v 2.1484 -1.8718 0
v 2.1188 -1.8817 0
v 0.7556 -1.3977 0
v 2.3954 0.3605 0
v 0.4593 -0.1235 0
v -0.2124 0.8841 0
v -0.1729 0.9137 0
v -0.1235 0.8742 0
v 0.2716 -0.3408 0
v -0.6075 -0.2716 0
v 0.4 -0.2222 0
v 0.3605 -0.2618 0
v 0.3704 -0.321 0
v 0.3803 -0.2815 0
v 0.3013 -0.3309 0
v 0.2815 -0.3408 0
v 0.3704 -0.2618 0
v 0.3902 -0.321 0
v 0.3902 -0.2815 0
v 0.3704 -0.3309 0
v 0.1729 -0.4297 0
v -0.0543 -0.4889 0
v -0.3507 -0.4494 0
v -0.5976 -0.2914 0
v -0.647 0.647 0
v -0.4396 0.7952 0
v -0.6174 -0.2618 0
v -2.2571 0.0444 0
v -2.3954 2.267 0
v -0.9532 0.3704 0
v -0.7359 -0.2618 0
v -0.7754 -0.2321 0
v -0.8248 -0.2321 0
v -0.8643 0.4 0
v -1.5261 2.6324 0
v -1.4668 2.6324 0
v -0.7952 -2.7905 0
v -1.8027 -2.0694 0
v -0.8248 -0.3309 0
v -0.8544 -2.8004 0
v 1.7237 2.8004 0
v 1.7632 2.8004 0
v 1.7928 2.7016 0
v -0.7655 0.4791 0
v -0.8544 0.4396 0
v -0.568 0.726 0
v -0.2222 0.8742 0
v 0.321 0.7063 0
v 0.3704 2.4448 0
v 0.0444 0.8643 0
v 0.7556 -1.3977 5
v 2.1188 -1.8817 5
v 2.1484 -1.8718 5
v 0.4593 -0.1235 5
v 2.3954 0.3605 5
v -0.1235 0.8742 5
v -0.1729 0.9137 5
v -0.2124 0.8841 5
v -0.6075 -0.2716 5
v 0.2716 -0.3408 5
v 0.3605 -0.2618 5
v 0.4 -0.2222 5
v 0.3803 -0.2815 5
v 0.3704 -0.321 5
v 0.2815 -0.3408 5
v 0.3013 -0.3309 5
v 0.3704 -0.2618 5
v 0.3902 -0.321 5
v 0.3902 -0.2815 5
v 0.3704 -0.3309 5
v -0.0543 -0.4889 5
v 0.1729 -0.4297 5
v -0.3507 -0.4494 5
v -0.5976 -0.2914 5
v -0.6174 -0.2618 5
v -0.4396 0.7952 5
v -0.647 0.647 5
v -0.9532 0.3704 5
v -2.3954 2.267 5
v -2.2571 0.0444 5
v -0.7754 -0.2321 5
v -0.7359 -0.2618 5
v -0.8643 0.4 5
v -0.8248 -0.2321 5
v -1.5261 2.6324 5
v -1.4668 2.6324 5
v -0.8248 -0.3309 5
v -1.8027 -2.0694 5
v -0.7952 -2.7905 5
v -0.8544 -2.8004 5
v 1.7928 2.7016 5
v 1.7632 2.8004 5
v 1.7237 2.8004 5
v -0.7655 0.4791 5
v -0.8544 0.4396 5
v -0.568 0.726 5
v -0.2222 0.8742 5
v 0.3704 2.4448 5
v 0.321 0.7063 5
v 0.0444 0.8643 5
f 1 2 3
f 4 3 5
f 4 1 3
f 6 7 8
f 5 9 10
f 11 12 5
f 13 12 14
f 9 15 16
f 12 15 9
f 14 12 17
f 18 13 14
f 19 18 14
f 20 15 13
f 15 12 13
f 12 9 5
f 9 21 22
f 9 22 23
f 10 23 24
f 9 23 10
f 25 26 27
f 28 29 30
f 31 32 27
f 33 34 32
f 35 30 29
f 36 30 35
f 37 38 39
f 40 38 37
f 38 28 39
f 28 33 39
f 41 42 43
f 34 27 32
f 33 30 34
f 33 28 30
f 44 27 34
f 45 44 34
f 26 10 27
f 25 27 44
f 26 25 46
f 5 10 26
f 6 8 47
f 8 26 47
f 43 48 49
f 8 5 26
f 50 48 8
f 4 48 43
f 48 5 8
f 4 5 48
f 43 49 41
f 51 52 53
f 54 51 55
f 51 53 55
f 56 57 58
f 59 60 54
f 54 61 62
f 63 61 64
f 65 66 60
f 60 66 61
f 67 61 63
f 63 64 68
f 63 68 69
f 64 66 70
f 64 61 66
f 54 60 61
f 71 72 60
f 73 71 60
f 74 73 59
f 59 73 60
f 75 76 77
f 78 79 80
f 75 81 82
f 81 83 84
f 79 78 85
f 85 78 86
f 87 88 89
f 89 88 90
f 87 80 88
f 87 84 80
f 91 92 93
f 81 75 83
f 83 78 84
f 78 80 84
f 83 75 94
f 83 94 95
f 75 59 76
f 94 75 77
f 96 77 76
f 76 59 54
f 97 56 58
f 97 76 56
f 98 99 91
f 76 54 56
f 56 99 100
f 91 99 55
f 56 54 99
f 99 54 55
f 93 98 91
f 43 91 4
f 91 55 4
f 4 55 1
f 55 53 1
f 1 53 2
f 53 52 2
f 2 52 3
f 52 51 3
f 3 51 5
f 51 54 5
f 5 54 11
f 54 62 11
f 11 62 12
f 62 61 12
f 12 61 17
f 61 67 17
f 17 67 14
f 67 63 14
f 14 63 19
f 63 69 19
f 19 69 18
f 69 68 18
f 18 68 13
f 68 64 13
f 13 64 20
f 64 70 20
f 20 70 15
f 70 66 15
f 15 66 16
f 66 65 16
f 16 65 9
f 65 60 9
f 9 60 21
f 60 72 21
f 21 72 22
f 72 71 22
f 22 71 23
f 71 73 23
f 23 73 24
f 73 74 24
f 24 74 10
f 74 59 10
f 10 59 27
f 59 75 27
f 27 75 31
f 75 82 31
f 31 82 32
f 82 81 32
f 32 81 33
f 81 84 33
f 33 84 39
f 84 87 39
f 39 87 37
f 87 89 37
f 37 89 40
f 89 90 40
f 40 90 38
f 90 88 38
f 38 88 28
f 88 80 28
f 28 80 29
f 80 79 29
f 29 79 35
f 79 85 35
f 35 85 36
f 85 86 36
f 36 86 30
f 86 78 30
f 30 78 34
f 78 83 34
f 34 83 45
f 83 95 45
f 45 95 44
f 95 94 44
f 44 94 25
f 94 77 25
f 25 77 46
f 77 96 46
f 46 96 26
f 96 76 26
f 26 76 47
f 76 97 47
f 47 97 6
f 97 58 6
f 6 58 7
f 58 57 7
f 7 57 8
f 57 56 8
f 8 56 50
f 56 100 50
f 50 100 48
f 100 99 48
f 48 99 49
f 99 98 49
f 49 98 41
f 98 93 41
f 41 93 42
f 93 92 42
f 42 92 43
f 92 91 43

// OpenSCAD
// Module names are of the form poly_<inkscape-path-id>().  As a result,
// you can associate a polygon in this OpenSCAD program with the corresponding
// SVG element in the Inkscape document by looking for the XML element with
// the attribute id="inkscape-path-id".

// fudge value is used to ensure that subtracted solids are a tad taller
// in the z dimension than the polygon being subtracted from.  This helps
// keep the resulting .stl file manifold.
fudge = 0.1;

module poly_path4215(h)
{
  scale([25.4/90, -25.4/90, 1]) union()
  {
    linear_extrude(height=h)
      polygon([[8.487500,-1.277500],[7.612500,6.632500],[7.507500,6.667500],[2.677500,4.952500],[1.627500,0.437500],[1.522500,0.612500],[1.417500,0.787500],[1.312500,0.892500],[1.277500,0.927500],[1.312500,0.927500],[1.347500,0.997500],[1.382500,0.997500],[1.382500,1.137500],[1.312500,1.137500],[1.312500,1.172500],[1.242500,1.172500],[1.102500,1.172500],[1.067500,1.172500],[0.997500,1.207500],[0.962500,1.207500],[0.612500,1.522500],[-0.192500,1.732500],[-1.242500,1.592500],[-2.117500,1.032500],[-2.152500,0.962500],[-2.187500,0.927500],[-2.607500,0.927500],[-2.747500,0.822500],[-2.922500,0.822500],[-2.922500,1.172500],[-2.817500,9.887500],[-3.027500,9.922500],[-6.387500,7.332500],[-7.997500,-0.157500],[-8.487500,-8.032500],[-5.407500,-9.327500],[-5.197500,-9.327500],[-3.377500,-1.312500],[-3.062500,-1.417500],[-3.027500,-1.557500],[-2.712500,-1.697500],[-2.292500,-2.292500],[-2.012500,-2.572500],[-1.557500,-2.817500],[-0.787500,-3.097500],[-0.752500,-3.132500],[-0.612500,-3.237500],[-0.437500,-3.097500],[0.157500,-3.062500],[1.137500,-2.502500],[1.312500,-8.662500],[6.107500,-9.922500],[6.247500,-9.922500],[6.352500,-9.572500],[8.487500,-1.277500]]);
  }
}

poly_path4215(5);
